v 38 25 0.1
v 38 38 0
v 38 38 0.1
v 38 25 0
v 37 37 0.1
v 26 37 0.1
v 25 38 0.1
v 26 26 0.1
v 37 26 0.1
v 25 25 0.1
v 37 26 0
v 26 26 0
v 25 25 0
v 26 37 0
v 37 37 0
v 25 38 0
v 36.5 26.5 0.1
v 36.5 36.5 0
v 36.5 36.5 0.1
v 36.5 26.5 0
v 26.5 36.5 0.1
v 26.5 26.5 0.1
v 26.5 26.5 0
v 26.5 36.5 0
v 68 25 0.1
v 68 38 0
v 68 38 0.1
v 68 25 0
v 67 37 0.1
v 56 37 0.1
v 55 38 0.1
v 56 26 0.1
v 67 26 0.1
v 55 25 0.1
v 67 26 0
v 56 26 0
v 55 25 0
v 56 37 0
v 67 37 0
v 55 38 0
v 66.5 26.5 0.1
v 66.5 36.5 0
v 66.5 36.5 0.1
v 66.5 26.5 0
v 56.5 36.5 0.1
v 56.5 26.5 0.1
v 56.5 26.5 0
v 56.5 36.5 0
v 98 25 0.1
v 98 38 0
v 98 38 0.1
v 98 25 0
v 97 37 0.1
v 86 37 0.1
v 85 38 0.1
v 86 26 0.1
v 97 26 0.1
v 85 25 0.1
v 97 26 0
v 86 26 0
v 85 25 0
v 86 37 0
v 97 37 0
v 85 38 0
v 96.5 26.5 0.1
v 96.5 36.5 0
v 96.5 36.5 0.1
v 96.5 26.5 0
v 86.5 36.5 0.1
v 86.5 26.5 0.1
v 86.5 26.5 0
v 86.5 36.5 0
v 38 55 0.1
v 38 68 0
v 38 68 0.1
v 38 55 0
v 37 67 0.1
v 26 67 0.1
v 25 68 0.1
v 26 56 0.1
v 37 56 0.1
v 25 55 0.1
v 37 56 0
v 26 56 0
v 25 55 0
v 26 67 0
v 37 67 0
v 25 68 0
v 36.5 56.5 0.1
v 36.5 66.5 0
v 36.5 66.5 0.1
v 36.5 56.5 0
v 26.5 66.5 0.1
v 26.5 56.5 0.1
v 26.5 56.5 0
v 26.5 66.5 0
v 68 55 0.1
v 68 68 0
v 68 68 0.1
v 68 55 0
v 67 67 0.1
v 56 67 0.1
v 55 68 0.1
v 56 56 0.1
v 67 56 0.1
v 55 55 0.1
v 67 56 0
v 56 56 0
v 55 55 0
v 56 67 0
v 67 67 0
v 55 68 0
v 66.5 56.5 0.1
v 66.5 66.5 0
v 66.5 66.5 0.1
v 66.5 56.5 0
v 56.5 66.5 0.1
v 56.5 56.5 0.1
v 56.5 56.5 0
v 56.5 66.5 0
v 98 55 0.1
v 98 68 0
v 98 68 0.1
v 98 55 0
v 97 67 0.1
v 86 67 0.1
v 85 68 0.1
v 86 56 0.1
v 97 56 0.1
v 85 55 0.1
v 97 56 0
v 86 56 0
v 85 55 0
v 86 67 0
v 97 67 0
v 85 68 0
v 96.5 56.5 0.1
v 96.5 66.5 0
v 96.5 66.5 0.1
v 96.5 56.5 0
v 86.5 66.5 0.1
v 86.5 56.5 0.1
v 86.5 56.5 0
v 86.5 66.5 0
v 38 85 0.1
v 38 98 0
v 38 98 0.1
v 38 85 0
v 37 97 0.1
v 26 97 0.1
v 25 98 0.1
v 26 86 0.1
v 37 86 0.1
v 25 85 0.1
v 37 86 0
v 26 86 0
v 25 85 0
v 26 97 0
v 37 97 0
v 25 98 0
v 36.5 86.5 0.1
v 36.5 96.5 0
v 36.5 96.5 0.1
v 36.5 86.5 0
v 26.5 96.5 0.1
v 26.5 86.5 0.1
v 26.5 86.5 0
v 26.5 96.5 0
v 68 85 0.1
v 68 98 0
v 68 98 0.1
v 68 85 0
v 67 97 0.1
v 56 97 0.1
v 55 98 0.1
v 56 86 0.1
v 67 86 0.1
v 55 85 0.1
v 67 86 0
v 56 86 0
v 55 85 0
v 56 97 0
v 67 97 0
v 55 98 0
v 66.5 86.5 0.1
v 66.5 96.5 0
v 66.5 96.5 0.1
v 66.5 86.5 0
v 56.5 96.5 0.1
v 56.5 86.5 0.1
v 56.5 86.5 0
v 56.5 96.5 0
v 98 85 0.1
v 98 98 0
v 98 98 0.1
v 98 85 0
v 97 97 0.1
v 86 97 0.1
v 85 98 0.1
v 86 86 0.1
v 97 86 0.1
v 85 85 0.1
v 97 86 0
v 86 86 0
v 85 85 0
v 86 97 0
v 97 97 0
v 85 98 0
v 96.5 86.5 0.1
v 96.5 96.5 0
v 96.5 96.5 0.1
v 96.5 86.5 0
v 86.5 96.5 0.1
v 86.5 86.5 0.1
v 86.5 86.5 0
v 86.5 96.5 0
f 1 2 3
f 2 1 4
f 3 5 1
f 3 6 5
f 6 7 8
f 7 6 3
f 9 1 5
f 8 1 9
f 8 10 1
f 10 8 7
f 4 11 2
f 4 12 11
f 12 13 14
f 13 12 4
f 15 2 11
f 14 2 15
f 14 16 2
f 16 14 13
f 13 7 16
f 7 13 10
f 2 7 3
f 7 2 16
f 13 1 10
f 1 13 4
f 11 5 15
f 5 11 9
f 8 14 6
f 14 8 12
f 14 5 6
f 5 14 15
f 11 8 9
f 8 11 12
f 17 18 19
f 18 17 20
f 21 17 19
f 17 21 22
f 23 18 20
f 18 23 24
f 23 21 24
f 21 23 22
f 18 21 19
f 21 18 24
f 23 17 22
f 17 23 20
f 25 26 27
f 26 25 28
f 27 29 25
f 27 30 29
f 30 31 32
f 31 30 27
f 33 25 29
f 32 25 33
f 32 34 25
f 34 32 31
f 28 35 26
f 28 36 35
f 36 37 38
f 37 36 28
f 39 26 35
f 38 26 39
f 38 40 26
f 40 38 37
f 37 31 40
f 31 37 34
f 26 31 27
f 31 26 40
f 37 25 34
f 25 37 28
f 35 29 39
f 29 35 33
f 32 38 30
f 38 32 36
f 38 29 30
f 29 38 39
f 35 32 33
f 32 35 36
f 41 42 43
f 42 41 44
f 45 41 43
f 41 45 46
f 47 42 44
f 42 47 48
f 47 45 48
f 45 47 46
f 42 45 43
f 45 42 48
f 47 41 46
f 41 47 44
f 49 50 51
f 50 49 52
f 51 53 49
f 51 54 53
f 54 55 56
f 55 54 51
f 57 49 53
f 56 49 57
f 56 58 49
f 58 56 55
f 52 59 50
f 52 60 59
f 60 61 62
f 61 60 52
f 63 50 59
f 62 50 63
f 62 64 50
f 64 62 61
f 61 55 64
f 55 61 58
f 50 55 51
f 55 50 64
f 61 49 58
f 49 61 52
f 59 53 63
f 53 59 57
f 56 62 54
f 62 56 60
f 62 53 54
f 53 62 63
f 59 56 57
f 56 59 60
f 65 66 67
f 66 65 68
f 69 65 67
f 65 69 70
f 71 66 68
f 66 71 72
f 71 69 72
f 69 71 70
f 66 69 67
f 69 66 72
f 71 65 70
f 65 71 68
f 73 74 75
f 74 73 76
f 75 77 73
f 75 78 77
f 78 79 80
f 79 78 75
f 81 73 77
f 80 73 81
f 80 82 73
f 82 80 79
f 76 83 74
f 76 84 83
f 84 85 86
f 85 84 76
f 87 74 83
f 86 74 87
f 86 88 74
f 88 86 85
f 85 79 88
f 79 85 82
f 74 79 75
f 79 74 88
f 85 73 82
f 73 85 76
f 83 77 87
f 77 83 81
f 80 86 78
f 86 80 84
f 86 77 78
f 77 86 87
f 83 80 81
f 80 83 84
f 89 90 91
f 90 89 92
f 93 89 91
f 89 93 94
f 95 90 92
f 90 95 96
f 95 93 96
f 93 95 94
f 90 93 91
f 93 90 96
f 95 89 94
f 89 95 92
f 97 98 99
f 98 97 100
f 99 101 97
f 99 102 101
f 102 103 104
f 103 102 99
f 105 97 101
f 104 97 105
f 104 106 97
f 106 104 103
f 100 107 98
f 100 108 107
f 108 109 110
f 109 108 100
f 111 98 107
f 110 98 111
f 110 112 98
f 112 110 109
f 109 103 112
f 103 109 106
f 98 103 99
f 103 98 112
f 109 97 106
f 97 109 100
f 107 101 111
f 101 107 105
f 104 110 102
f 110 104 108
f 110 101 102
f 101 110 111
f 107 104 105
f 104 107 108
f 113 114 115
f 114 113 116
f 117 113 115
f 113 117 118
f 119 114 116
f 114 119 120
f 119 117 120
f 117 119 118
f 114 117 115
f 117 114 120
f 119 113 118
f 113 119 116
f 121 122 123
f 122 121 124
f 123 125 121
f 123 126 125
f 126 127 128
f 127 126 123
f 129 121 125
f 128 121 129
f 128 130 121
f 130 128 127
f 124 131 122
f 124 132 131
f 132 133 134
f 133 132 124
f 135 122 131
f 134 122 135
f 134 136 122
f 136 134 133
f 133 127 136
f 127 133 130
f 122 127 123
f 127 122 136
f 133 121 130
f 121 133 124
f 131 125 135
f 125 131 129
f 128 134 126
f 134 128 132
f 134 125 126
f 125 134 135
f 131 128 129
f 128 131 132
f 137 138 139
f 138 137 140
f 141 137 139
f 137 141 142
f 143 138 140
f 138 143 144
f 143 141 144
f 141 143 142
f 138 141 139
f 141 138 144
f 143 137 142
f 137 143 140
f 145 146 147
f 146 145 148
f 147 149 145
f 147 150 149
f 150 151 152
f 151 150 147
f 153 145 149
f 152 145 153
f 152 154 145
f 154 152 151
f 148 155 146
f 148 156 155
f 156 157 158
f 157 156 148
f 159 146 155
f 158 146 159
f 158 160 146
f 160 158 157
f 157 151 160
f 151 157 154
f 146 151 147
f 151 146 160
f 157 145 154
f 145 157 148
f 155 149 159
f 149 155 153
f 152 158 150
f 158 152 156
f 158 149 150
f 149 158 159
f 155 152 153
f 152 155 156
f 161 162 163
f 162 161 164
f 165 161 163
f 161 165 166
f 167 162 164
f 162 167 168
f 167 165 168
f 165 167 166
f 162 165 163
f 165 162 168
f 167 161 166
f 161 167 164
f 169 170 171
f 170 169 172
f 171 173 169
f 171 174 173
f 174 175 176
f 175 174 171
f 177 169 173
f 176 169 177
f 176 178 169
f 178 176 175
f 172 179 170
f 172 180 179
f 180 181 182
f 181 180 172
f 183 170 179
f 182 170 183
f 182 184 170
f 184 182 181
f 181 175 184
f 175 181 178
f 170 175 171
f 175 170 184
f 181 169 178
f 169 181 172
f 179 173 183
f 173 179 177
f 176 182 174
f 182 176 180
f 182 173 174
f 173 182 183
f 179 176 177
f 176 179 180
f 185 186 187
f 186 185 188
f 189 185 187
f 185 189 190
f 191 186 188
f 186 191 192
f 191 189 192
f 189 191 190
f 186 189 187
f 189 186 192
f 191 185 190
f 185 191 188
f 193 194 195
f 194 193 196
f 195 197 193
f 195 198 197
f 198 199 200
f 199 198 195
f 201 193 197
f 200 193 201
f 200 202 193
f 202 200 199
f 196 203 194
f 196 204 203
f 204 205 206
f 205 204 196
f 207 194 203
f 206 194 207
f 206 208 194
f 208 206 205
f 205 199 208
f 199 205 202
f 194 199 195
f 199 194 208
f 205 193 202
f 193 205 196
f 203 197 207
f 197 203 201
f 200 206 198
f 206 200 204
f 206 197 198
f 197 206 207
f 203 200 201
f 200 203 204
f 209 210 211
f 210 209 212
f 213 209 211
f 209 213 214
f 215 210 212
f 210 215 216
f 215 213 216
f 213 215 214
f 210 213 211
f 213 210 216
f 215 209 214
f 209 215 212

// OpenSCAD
/**
 * Print designed to check that you bed is level
 *
 * print four small squares in each corner to ensure even print quality and good adhesion.
 */

// Define your printers printable area
// If you are using Sprinter firmware then these come directly from configuration.h

X_MAX_LENGTH = 120;
Y_MAX_LENGTH = 120;

THICKNESS = 0.1; //Square / outline thickness
SIZE = 10; //Square width / height
GAP = 0.5; //Width of border between square and parameter
OUTLINE_WIDTH = 1; //Width of parameter around square
OFFSET = 25; //Offset from limits in each axis

translate([OFFSET, OFFSET, 0]) square(); //Top Left
translate([(X_MAX_LENGTH / 2) - (SIZE / 2), OFFSET, 0]) square(); //Top Middle
translate([X_MAX_LENGTH - OFFSET - SIZE, OFFSET, 0]) square(); //Top Right

translate([OFFSET, (Y_MAX_LENGTH / 2) - (SIZE / 2), 0]) square(); //Middle Left
translate([(X_MAX_LENGTH / 2) - (SIZE / 2), (Y_MAX_LENGTH / 2) - (SIZE / 2), 0]) square(); //Middle Middle
translate([X_MAX_LENGTH - OFFSET - SIZE, (Y_MAX_LENGTH / 2) - (SIZE / 2), 0]) square(); //Middle Right

translate([OFFSET, Y_MAX_LENGTH - OFFSET - SIZE, 0]) square(); //Bottom Left
translate([(X_MAX_LENGTH / 2) - (SIZE / 2), Y_MAX_LENGTH - OFFSET - SIZE, 0]) square(); //Bottom Middle
translate([X_MAX_LENGTH - OFFSET - SIZE, Y_MAX_LENGTH - OFFSET - SIZE, 0]) square(); //Bottom Right

module square() {
	//Center square
	translate([
				OUTLINE_WIDTH + GAP,
				OUTLINE_WIDTH + GAP,
				0
			])
		cube([SIZE, SIZE, THICKNESS]);

	//Parameter
	difference() {
		//Outer square
		cube([
				SIZE + (2 * (GAP + OUTLINE_WIDTH)),
				SIZE + (2 * (GAP + OUTLINE_WIDTH)),
				THICKNESS
			]);

		//Inner square
		translate([OUTLINE_WIDTH, OUTLINE_WIDTH, -5])
			cube([SIZE + (2 * GAP), SIZE + (2 * GAP), 10]);
	}
}
